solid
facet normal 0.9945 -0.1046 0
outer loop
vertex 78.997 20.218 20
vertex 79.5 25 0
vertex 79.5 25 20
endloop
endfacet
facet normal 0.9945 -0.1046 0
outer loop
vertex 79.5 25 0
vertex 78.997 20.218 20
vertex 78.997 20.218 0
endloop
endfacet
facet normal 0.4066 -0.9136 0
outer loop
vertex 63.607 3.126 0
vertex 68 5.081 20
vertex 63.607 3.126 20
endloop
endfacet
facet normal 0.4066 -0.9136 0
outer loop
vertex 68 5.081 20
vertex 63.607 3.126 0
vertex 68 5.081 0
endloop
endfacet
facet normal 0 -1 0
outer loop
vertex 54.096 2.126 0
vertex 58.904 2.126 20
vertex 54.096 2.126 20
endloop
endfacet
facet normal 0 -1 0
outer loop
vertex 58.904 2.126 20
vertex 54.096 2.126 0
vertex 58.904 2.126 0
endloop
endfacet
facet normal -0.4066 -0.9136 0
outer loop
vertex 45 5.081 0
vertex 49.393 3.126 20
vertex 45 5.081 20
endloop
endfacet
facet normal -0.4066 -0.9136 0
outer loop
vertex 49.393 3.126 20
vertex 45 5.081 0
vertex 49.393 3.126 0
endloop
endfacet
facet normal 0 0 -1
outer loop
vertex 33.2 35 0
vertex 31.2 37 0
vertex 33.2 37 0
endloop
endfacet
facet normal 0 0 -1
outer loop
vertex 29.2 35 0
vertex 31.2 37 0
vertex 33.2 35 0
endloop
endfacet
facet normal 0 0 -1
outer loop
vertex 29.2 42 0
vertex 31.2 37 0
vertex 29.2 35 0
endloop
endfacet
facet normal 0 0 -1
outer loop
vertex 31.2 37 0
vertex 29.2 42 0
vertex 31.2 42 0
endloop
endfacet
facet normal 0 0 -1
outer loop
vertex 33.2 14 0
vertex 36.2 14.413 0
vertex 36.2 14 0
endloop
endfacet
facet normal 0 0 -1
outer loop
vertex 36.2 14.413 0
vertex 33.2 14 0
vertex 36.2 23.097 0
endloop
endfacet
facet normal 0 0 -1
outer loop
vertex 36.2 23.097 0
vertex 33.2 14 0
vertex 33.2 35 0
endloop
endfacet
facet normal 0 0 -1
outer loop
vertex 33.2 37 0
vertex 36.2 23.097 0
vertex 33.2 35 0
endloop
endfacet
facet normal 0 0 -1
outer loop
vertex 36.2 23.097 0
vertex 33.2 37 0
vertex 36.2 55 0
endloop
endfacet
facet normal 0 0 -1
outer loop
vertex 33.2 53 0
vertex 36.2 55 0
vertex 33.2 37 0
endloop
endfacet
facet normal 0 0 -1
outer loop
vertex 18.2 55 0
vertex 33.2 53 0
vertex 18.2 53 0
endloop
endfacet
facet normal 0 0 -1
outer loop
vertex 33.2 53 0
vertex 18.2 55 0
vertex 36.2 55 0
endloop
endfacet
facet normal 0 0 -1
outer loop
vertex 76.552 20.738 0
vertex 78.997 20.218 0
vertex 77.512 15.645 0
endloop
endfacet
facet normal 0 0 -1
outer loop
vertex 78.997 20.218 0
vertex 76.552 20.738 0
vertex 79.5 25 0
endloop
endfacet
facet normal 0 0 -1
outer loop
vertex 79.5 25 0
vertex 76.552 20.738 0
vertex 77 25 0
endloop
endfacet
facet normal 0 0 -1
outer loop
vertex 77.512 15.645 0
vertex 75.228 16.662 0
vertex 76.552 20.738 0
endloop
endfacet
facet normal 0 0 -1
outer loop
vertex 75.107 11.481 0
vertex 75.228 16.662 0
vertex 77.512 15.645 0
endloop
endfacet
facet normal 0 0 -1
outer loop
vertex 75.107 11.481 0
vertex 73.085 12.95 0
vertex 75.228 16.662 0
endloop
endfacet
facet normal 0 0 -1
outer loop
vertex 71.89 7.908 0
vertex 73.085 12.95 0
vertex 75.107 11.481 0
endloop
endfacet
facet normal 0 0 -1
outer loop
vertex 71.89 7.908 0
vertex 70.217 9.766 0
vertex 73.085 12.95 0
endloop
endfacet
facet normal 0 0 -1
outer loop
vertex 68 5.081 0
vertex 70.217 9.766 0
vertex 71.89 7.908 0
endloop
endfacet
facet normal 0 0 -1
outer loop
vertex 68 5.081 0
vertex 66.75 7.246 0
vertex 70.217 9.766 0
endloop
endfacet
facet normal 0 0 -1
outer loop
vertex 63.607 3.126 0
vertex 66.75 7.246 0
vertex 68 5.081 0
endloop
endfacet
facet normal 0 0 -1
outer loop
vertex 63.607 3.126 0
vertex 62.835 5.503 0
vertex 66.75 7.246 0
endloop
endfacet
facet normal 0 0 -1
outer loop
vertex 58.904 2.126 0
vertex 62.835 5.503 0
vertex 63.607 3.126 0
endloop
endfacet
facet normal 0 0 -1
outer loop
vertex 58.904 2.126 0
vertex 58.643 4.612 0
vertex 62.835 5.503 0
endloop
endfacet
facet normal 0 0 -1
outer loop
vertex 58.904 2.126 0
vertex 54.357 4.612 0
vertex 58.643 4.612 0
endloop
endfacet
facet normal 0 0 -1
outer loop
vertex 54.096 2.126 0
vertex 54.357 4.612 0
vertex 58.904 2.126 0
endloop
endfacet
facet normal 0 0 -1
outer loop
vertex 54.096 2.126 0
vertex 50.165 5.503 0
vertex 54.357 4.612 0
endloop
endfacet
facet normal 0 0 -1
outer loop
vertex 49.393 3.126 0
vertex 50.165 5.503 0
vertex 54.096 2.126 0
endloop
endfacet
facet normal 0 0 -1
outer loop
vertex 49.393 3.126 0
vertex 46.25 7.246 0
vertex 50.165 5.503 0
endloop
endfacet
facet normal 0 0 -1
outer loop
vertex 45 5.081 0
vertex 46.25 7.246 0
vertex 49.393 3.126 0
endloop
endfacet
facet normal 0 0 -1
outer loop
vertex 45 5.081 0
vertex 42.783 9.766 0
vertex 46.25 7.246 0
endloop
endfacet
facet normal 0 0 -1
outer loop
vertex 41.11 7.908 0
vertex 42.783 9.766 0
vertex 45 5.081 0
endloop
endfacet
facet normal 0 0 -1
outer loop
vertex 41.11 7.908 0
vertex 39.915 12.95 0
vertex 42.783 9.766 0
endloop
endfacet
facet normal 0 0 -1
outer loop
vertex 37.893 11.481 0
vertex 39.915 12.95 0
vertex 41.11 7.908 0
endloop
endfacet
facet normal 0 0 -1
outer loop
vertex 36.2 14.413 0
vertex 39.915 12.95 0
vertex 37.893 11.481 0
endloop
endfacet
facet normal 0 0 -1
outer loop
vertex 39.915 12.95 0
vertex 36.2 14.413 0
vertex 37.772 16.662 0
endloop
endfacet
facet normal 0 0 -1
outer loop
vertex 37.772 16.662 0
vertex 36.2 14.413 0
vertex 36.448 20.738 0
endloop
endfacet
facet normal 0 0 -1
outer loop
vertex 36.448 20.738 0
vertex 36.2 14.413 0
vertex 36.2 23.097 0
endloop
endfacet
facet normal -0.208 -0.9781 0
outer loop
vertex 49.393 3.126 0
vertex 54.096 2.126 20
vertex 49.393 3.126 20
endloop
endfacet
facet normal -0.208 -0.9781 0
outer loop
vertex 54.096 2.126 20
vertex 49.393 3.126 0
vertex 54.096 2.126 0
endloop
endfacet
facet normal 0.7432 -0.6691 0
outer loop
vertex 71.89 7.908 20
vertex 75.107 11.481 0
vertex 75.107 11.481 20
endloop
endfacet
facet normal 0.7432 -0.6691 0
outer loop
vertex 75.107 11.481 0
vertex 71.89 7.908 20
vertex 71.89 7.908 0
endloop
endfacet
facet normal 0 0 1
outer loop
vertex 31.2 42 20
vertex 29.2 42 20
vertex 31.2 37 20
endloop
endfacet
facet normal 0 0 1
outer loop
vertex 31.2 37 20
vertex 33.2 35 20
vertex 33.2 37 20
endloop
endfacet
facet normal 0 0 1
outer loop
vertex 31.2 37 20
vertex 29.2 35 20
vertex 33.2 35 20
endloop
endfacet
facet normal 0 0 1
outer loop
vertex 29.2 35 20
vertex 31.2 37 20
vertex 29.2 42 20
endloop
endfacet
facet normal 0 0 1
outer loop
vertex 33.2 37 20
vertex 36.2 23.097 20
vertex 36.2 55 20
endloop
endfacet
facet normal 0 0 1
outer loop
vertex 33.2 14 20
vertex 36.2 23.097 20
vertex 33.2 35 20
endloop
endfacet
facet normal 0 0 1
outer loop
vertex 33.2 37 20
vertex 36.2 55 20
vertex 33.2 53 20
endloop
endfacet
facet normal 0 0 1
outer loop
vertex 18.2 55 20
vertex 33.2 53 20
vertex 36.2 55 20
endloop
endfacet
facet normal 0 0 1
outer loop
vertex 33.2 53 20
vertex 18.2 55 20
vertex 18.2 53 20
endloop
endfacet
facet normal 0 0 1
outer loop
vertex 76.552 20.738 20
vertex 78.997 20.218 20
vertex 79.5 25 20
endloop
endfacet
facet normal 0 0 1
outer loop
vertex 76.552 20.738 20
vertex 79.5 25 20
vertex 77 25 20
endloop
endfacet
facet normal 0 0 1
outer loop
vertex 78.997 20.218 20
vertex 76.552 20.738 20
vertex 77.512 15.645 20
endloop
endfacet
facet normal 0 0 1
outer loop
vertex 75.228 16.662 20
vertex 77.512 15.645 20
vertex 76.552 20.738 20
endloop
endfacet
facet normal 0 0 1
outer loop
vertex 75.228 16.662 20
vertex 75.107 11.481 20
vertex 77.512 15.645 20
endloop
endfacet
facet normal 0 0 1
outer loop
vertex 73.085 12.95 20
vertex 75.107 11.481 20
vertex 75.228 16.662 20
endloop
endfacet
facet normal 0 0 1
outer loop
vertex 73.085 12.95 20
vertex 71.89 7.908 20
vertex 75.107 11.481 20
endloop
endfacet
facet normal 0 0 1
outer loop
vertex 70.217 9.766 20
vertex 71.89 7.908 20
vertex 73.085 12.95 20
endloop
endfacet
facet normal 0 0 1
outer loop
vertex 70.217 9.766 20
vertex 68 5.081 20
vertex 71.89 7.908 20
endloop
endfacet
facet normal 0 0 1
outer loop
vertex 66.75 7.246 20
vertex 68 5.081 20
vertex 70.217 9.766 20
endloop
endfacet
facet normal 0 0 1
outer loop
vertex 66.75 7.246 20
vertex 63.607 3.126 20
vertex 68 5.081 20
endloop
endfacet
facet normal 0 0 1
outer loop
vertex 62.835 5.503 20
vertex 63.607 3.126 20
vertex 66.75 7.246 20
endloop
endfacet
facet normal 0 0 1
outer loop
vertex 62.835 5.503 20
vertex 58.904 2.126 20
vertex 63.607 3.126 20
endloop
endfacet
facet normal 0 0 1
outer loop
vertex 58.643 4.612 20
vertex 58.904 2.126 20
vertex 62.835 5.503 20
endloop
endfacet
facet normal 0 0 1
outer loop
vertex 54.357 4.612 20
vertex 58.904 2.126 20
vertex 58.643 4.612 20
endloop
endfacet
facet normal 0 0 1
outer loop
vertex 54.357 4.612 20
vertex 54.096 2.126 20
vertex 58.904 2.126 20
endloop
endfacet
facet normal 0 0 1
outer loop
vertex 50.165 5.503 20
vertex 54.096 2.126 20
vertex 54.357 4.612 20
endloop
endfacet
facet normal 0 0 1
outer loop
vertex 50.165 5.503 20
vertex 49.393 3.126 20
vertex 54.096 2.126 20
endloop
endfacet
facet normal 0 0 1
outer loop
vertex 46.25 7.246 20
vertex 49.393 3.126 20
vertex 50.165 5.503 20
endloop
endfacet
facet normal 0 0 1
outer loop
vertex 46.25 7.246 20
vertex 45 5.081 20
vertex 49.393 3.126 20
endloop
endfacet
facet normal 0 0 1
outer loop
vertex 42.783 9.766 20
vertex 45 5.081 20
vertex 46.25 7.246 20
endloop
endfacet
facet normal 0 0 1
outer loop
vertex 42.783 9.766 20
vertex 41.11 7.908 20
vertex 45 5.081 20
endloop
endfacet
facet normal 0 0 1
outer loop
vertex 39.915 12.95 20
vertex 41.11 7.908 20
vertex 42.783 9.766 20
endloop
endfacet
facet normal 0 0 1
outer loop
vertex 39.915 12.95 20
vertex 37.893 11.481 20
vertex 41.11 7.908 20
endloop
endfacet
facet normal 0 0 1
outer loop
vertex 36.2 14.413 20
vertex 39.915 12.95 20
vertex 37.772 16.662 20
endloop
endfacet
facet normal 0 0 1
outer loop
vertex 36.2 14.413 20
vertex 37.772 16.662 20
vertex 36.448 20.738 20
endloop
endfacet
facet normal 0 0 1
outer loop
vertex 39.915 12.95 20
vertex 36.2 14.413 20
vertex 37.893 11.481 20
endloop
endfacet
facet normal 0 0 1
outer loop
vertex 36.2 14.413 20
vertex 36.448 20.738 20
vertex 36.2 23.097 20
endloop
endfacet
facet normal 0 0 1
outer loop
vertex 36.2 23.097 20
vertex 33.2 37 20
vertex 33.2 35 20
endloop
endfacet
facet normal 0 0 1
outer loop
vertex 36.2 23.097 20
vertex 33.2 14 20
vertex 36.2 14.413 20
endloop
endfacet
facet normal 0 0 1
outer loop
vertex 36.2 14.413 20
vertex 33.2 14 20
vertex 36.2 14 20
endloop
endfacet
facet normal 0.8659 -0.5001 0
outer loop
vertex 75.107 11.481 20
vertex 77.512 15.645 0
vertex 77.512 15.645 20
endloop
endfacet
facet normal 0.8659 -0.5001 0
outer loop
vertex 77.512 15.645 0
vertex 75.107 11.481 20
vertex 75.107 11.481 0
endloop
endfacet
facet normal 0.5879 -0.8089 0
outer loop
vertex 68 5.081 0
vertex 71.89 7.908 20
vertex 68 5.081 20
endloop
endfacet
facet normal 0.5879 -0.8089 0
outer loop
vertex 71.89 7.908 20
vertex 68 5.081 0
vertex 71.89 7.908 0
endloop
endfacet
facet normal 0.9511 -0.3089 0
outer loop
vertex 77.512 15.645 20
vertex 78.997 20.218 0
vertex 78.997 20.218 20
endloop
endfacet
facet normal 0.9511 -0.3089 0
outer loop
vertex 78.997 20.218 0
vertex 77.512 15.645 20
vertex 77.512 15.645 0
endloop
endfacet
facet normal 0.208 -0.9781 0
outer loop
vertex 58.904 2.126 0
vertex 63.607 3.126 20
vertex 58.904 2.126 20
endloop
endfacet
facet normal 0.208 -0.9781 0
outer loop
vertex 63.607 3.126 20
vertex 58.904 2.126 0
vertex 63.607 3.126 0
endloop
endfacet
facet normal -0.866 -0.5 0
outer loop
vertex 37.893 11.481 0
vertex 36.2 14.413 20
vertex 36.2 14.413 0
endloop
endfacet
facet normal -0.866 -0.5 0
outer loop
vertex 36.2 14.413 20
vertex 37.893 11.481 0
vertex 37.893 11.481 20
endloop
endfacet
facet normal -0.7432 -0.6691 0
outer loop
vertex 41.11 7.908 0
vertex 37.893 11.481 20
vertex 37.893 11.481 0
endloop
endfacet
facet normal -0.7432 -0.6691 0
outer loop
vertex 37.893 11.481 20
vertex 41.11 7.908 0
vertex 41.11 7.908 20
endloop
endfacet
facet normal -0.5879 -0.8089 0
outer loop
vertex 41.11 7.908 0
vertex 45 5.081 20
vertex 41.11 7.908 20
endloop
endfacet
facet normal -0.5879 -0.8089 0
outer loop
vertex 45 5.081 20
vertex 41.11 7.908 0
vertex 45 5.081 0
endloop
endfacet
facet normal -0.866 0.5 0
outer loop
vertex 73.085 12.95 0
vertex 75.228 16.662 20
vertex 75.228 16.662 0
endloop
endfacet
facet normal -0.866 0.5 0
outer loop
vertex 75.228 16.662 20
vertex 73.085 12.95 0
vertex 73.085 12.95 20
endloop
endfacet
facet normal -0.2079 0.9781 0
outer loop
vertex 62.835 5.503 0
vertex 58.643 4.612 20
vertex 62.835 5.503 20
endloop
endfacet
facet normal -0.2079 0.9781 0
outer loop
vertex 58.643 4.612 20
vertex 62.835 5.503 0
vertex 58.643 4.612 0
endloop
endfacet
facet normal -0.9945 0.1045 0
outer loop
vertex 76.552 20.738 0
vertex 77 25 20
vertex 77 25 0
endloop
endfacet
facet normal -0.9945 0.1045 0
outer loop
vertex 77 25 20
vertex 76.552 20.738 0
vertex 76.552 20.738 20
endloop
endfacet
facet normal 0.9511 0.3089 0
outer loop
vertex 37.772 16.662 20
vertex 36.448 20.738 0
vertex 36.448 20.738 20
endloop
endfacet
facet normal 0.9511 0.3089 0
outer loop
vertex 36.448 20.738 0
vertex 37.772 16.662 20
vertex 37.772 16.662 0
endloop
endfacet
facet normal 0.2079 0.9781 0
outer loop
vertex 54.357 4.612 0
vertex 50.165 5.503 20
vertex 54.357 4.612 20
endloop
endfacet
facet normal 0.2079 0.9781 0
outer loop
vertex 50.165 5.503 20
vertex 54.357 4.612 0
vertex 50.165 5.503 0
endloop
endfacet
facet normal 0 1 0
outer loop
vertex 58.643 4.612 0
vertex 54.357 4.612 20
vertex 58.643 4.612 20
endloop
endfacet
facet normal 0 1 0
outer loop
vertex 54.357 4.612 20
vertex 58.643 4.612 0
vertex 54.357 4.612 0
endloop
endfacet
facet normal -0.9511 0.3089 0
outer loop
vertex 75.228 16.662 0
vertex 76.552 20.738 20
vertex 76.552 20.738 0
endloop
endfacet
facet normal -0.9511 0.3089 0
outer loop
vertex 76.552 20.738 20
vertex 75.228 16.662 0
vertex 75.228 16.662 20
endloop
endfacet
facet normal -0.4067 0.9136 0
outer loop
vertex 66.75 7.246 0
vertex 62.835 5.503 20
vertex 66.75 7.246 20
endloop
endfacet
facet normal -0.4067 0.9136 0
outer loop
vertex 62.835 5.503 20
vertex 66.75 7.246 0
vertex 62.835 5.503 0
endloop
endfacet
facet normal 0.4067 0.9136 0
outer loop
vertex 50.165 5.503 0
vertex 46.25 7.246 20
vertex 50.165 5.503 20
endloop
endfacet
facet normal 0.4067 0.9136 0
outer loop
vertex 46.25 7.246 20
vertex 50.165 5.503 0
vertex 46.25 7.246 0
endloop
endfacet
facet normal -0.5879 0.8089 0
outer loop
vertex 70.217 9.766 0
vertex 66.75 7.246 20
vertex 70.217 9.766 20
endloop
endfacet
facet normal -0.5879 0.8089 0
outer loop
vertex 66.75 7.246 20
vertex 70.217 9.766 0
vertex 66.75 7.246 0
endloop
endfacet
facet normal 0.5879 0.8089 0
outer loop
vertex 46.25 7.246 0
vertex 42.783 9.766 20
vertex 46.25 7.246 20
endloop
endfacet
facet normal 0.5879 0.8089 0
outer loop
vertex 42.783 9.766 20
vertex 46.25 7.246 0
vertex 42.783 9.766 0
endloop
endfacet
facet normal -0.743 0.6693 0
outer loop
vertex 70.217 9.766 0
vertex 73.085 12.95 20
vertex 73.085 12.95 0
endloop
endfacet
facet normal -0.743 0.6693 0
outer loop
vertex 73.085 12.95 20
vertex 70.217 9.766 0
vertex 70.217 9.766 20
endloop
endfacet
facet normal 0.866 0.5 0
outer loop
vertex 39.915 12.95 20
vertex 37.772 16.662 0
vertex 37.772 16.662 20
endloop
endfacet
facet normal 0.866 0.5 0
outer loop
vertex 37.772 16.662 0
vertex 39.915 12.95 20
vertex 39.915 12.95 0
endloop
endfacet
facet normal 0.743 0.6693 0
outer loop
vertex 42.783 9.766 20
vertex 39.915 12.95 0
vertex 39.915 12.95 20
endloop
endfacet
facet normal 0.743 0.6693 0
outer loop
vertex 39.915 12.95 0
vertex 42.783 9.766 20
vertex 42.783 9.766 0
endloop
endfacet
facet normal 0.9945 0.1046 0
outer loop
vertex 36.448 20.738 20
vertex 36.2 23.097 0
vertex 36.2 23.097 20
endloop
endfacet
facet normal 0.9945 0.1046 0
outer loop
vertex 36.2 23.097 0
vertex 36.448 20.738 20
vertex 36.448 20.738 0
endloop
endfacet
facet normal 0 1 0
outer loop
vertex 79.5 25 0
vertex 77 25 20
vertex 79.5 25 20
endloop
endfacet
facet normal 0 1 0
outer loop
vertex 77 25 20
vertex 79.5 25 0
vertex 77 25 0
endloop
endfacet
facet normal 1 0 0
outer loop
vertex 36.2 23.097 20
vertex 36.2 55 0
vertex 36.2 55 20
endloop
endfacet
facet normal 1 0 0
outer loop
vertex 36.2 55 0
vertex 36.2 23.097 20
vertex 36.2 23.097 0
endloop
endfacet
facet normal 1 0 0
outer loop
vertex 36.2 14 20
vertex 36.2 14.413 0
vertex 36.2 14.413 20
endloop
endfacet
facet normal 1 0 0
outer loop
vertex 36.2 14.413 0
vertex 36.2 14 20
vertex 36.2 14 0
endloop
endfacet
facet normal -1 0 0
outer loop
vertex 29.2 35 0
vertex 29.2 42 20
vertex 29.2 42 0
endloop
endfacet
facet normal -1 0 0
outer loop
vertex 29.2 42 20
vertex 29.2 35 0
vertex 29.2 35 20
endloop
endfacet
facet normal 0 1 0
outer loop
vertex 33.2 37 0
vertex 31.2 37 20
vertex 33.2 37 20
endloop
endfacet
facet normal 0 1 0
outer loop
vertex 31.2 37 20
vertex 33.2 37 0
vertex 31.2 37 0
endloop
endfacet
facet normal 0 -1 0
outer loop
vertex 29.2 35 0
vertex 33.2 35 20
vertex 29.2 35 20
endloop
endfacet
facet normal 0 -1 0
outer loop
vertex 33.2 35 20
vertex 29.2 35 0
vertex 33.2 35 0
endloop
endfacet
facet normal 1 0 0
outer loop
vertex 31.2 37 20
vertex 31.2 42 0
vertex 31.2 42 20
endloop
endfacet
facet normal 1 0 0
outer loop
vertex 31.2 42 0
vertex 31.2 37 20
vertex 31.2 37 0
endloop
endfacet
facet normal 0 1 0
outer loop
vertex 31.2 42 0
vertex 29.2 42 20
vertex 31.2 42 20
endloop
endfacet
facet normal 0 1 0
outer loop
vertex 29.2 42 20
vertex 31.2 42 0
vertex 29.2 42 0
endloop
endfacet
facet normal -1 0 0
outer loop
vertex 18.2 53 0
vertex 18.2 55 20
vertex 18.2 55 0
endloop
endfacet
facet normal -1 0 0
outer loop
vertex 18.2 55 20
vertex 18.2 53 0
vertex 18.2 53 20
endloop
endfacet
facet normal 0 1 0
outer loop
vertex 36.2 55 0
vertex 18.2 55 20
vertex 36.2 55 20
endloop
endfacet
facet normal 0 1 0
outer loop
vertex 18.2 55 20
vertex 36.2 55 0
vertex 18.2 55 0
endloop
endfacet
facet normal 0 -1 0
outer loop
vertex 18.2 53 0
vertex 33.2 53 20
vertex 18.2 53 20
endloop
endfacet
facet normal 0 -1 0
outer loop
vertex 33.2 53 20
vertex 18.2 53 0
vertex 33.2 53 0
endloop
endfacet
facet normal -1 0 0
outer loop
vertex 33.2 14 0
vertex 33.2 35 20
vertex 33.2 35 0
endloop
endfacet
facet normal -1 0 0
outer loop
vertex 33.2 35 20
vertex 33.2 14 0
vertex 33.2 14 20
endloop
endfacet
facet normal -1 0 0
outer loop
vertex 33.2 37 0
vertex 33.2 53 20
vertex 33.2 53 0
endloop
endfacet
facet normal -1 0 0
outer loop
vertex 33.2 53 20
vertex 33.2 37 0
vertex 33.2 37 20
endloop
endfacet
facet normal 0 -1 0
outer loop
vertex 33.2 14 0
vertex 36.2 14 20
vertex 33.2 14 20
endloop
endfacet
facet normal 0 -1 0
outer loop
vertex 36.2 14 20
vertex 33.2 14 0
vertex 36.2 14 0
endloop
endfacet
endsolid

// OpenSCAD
HOOK_HEIGHT=20;
DIAMETER=46;

// Hook
union() {
  translate([33.2,14,0]) {
    // Long wall
    cube(size=[3, 41, 20]);

    // Lower hook
    translate([-4,21,0]) {
      cube(size=[7, 2, 20]);

      translate([0,0,0]) {
        cube(size=[2, 7, 20]);
      }

      translate([-11,18,0]) {
        cube(size=[18, 2, 20]);
      }
    }
  }
}

translate([56.5,25]) {
  difference() {
    difference() {
      cylinder(r=(DIAMETER / 2), h=HOOK_HEIGHT);
      #cylinder(r=(DIAMETER / 2) - 2.5, h=HOOK_HEIGHT);
    }
    translate([-DIAMETER / 2, 0]) {
      #cube([DIAMETER, DIAMETER / 2, HOOK_HEIGHT]);
    }
  }
}
